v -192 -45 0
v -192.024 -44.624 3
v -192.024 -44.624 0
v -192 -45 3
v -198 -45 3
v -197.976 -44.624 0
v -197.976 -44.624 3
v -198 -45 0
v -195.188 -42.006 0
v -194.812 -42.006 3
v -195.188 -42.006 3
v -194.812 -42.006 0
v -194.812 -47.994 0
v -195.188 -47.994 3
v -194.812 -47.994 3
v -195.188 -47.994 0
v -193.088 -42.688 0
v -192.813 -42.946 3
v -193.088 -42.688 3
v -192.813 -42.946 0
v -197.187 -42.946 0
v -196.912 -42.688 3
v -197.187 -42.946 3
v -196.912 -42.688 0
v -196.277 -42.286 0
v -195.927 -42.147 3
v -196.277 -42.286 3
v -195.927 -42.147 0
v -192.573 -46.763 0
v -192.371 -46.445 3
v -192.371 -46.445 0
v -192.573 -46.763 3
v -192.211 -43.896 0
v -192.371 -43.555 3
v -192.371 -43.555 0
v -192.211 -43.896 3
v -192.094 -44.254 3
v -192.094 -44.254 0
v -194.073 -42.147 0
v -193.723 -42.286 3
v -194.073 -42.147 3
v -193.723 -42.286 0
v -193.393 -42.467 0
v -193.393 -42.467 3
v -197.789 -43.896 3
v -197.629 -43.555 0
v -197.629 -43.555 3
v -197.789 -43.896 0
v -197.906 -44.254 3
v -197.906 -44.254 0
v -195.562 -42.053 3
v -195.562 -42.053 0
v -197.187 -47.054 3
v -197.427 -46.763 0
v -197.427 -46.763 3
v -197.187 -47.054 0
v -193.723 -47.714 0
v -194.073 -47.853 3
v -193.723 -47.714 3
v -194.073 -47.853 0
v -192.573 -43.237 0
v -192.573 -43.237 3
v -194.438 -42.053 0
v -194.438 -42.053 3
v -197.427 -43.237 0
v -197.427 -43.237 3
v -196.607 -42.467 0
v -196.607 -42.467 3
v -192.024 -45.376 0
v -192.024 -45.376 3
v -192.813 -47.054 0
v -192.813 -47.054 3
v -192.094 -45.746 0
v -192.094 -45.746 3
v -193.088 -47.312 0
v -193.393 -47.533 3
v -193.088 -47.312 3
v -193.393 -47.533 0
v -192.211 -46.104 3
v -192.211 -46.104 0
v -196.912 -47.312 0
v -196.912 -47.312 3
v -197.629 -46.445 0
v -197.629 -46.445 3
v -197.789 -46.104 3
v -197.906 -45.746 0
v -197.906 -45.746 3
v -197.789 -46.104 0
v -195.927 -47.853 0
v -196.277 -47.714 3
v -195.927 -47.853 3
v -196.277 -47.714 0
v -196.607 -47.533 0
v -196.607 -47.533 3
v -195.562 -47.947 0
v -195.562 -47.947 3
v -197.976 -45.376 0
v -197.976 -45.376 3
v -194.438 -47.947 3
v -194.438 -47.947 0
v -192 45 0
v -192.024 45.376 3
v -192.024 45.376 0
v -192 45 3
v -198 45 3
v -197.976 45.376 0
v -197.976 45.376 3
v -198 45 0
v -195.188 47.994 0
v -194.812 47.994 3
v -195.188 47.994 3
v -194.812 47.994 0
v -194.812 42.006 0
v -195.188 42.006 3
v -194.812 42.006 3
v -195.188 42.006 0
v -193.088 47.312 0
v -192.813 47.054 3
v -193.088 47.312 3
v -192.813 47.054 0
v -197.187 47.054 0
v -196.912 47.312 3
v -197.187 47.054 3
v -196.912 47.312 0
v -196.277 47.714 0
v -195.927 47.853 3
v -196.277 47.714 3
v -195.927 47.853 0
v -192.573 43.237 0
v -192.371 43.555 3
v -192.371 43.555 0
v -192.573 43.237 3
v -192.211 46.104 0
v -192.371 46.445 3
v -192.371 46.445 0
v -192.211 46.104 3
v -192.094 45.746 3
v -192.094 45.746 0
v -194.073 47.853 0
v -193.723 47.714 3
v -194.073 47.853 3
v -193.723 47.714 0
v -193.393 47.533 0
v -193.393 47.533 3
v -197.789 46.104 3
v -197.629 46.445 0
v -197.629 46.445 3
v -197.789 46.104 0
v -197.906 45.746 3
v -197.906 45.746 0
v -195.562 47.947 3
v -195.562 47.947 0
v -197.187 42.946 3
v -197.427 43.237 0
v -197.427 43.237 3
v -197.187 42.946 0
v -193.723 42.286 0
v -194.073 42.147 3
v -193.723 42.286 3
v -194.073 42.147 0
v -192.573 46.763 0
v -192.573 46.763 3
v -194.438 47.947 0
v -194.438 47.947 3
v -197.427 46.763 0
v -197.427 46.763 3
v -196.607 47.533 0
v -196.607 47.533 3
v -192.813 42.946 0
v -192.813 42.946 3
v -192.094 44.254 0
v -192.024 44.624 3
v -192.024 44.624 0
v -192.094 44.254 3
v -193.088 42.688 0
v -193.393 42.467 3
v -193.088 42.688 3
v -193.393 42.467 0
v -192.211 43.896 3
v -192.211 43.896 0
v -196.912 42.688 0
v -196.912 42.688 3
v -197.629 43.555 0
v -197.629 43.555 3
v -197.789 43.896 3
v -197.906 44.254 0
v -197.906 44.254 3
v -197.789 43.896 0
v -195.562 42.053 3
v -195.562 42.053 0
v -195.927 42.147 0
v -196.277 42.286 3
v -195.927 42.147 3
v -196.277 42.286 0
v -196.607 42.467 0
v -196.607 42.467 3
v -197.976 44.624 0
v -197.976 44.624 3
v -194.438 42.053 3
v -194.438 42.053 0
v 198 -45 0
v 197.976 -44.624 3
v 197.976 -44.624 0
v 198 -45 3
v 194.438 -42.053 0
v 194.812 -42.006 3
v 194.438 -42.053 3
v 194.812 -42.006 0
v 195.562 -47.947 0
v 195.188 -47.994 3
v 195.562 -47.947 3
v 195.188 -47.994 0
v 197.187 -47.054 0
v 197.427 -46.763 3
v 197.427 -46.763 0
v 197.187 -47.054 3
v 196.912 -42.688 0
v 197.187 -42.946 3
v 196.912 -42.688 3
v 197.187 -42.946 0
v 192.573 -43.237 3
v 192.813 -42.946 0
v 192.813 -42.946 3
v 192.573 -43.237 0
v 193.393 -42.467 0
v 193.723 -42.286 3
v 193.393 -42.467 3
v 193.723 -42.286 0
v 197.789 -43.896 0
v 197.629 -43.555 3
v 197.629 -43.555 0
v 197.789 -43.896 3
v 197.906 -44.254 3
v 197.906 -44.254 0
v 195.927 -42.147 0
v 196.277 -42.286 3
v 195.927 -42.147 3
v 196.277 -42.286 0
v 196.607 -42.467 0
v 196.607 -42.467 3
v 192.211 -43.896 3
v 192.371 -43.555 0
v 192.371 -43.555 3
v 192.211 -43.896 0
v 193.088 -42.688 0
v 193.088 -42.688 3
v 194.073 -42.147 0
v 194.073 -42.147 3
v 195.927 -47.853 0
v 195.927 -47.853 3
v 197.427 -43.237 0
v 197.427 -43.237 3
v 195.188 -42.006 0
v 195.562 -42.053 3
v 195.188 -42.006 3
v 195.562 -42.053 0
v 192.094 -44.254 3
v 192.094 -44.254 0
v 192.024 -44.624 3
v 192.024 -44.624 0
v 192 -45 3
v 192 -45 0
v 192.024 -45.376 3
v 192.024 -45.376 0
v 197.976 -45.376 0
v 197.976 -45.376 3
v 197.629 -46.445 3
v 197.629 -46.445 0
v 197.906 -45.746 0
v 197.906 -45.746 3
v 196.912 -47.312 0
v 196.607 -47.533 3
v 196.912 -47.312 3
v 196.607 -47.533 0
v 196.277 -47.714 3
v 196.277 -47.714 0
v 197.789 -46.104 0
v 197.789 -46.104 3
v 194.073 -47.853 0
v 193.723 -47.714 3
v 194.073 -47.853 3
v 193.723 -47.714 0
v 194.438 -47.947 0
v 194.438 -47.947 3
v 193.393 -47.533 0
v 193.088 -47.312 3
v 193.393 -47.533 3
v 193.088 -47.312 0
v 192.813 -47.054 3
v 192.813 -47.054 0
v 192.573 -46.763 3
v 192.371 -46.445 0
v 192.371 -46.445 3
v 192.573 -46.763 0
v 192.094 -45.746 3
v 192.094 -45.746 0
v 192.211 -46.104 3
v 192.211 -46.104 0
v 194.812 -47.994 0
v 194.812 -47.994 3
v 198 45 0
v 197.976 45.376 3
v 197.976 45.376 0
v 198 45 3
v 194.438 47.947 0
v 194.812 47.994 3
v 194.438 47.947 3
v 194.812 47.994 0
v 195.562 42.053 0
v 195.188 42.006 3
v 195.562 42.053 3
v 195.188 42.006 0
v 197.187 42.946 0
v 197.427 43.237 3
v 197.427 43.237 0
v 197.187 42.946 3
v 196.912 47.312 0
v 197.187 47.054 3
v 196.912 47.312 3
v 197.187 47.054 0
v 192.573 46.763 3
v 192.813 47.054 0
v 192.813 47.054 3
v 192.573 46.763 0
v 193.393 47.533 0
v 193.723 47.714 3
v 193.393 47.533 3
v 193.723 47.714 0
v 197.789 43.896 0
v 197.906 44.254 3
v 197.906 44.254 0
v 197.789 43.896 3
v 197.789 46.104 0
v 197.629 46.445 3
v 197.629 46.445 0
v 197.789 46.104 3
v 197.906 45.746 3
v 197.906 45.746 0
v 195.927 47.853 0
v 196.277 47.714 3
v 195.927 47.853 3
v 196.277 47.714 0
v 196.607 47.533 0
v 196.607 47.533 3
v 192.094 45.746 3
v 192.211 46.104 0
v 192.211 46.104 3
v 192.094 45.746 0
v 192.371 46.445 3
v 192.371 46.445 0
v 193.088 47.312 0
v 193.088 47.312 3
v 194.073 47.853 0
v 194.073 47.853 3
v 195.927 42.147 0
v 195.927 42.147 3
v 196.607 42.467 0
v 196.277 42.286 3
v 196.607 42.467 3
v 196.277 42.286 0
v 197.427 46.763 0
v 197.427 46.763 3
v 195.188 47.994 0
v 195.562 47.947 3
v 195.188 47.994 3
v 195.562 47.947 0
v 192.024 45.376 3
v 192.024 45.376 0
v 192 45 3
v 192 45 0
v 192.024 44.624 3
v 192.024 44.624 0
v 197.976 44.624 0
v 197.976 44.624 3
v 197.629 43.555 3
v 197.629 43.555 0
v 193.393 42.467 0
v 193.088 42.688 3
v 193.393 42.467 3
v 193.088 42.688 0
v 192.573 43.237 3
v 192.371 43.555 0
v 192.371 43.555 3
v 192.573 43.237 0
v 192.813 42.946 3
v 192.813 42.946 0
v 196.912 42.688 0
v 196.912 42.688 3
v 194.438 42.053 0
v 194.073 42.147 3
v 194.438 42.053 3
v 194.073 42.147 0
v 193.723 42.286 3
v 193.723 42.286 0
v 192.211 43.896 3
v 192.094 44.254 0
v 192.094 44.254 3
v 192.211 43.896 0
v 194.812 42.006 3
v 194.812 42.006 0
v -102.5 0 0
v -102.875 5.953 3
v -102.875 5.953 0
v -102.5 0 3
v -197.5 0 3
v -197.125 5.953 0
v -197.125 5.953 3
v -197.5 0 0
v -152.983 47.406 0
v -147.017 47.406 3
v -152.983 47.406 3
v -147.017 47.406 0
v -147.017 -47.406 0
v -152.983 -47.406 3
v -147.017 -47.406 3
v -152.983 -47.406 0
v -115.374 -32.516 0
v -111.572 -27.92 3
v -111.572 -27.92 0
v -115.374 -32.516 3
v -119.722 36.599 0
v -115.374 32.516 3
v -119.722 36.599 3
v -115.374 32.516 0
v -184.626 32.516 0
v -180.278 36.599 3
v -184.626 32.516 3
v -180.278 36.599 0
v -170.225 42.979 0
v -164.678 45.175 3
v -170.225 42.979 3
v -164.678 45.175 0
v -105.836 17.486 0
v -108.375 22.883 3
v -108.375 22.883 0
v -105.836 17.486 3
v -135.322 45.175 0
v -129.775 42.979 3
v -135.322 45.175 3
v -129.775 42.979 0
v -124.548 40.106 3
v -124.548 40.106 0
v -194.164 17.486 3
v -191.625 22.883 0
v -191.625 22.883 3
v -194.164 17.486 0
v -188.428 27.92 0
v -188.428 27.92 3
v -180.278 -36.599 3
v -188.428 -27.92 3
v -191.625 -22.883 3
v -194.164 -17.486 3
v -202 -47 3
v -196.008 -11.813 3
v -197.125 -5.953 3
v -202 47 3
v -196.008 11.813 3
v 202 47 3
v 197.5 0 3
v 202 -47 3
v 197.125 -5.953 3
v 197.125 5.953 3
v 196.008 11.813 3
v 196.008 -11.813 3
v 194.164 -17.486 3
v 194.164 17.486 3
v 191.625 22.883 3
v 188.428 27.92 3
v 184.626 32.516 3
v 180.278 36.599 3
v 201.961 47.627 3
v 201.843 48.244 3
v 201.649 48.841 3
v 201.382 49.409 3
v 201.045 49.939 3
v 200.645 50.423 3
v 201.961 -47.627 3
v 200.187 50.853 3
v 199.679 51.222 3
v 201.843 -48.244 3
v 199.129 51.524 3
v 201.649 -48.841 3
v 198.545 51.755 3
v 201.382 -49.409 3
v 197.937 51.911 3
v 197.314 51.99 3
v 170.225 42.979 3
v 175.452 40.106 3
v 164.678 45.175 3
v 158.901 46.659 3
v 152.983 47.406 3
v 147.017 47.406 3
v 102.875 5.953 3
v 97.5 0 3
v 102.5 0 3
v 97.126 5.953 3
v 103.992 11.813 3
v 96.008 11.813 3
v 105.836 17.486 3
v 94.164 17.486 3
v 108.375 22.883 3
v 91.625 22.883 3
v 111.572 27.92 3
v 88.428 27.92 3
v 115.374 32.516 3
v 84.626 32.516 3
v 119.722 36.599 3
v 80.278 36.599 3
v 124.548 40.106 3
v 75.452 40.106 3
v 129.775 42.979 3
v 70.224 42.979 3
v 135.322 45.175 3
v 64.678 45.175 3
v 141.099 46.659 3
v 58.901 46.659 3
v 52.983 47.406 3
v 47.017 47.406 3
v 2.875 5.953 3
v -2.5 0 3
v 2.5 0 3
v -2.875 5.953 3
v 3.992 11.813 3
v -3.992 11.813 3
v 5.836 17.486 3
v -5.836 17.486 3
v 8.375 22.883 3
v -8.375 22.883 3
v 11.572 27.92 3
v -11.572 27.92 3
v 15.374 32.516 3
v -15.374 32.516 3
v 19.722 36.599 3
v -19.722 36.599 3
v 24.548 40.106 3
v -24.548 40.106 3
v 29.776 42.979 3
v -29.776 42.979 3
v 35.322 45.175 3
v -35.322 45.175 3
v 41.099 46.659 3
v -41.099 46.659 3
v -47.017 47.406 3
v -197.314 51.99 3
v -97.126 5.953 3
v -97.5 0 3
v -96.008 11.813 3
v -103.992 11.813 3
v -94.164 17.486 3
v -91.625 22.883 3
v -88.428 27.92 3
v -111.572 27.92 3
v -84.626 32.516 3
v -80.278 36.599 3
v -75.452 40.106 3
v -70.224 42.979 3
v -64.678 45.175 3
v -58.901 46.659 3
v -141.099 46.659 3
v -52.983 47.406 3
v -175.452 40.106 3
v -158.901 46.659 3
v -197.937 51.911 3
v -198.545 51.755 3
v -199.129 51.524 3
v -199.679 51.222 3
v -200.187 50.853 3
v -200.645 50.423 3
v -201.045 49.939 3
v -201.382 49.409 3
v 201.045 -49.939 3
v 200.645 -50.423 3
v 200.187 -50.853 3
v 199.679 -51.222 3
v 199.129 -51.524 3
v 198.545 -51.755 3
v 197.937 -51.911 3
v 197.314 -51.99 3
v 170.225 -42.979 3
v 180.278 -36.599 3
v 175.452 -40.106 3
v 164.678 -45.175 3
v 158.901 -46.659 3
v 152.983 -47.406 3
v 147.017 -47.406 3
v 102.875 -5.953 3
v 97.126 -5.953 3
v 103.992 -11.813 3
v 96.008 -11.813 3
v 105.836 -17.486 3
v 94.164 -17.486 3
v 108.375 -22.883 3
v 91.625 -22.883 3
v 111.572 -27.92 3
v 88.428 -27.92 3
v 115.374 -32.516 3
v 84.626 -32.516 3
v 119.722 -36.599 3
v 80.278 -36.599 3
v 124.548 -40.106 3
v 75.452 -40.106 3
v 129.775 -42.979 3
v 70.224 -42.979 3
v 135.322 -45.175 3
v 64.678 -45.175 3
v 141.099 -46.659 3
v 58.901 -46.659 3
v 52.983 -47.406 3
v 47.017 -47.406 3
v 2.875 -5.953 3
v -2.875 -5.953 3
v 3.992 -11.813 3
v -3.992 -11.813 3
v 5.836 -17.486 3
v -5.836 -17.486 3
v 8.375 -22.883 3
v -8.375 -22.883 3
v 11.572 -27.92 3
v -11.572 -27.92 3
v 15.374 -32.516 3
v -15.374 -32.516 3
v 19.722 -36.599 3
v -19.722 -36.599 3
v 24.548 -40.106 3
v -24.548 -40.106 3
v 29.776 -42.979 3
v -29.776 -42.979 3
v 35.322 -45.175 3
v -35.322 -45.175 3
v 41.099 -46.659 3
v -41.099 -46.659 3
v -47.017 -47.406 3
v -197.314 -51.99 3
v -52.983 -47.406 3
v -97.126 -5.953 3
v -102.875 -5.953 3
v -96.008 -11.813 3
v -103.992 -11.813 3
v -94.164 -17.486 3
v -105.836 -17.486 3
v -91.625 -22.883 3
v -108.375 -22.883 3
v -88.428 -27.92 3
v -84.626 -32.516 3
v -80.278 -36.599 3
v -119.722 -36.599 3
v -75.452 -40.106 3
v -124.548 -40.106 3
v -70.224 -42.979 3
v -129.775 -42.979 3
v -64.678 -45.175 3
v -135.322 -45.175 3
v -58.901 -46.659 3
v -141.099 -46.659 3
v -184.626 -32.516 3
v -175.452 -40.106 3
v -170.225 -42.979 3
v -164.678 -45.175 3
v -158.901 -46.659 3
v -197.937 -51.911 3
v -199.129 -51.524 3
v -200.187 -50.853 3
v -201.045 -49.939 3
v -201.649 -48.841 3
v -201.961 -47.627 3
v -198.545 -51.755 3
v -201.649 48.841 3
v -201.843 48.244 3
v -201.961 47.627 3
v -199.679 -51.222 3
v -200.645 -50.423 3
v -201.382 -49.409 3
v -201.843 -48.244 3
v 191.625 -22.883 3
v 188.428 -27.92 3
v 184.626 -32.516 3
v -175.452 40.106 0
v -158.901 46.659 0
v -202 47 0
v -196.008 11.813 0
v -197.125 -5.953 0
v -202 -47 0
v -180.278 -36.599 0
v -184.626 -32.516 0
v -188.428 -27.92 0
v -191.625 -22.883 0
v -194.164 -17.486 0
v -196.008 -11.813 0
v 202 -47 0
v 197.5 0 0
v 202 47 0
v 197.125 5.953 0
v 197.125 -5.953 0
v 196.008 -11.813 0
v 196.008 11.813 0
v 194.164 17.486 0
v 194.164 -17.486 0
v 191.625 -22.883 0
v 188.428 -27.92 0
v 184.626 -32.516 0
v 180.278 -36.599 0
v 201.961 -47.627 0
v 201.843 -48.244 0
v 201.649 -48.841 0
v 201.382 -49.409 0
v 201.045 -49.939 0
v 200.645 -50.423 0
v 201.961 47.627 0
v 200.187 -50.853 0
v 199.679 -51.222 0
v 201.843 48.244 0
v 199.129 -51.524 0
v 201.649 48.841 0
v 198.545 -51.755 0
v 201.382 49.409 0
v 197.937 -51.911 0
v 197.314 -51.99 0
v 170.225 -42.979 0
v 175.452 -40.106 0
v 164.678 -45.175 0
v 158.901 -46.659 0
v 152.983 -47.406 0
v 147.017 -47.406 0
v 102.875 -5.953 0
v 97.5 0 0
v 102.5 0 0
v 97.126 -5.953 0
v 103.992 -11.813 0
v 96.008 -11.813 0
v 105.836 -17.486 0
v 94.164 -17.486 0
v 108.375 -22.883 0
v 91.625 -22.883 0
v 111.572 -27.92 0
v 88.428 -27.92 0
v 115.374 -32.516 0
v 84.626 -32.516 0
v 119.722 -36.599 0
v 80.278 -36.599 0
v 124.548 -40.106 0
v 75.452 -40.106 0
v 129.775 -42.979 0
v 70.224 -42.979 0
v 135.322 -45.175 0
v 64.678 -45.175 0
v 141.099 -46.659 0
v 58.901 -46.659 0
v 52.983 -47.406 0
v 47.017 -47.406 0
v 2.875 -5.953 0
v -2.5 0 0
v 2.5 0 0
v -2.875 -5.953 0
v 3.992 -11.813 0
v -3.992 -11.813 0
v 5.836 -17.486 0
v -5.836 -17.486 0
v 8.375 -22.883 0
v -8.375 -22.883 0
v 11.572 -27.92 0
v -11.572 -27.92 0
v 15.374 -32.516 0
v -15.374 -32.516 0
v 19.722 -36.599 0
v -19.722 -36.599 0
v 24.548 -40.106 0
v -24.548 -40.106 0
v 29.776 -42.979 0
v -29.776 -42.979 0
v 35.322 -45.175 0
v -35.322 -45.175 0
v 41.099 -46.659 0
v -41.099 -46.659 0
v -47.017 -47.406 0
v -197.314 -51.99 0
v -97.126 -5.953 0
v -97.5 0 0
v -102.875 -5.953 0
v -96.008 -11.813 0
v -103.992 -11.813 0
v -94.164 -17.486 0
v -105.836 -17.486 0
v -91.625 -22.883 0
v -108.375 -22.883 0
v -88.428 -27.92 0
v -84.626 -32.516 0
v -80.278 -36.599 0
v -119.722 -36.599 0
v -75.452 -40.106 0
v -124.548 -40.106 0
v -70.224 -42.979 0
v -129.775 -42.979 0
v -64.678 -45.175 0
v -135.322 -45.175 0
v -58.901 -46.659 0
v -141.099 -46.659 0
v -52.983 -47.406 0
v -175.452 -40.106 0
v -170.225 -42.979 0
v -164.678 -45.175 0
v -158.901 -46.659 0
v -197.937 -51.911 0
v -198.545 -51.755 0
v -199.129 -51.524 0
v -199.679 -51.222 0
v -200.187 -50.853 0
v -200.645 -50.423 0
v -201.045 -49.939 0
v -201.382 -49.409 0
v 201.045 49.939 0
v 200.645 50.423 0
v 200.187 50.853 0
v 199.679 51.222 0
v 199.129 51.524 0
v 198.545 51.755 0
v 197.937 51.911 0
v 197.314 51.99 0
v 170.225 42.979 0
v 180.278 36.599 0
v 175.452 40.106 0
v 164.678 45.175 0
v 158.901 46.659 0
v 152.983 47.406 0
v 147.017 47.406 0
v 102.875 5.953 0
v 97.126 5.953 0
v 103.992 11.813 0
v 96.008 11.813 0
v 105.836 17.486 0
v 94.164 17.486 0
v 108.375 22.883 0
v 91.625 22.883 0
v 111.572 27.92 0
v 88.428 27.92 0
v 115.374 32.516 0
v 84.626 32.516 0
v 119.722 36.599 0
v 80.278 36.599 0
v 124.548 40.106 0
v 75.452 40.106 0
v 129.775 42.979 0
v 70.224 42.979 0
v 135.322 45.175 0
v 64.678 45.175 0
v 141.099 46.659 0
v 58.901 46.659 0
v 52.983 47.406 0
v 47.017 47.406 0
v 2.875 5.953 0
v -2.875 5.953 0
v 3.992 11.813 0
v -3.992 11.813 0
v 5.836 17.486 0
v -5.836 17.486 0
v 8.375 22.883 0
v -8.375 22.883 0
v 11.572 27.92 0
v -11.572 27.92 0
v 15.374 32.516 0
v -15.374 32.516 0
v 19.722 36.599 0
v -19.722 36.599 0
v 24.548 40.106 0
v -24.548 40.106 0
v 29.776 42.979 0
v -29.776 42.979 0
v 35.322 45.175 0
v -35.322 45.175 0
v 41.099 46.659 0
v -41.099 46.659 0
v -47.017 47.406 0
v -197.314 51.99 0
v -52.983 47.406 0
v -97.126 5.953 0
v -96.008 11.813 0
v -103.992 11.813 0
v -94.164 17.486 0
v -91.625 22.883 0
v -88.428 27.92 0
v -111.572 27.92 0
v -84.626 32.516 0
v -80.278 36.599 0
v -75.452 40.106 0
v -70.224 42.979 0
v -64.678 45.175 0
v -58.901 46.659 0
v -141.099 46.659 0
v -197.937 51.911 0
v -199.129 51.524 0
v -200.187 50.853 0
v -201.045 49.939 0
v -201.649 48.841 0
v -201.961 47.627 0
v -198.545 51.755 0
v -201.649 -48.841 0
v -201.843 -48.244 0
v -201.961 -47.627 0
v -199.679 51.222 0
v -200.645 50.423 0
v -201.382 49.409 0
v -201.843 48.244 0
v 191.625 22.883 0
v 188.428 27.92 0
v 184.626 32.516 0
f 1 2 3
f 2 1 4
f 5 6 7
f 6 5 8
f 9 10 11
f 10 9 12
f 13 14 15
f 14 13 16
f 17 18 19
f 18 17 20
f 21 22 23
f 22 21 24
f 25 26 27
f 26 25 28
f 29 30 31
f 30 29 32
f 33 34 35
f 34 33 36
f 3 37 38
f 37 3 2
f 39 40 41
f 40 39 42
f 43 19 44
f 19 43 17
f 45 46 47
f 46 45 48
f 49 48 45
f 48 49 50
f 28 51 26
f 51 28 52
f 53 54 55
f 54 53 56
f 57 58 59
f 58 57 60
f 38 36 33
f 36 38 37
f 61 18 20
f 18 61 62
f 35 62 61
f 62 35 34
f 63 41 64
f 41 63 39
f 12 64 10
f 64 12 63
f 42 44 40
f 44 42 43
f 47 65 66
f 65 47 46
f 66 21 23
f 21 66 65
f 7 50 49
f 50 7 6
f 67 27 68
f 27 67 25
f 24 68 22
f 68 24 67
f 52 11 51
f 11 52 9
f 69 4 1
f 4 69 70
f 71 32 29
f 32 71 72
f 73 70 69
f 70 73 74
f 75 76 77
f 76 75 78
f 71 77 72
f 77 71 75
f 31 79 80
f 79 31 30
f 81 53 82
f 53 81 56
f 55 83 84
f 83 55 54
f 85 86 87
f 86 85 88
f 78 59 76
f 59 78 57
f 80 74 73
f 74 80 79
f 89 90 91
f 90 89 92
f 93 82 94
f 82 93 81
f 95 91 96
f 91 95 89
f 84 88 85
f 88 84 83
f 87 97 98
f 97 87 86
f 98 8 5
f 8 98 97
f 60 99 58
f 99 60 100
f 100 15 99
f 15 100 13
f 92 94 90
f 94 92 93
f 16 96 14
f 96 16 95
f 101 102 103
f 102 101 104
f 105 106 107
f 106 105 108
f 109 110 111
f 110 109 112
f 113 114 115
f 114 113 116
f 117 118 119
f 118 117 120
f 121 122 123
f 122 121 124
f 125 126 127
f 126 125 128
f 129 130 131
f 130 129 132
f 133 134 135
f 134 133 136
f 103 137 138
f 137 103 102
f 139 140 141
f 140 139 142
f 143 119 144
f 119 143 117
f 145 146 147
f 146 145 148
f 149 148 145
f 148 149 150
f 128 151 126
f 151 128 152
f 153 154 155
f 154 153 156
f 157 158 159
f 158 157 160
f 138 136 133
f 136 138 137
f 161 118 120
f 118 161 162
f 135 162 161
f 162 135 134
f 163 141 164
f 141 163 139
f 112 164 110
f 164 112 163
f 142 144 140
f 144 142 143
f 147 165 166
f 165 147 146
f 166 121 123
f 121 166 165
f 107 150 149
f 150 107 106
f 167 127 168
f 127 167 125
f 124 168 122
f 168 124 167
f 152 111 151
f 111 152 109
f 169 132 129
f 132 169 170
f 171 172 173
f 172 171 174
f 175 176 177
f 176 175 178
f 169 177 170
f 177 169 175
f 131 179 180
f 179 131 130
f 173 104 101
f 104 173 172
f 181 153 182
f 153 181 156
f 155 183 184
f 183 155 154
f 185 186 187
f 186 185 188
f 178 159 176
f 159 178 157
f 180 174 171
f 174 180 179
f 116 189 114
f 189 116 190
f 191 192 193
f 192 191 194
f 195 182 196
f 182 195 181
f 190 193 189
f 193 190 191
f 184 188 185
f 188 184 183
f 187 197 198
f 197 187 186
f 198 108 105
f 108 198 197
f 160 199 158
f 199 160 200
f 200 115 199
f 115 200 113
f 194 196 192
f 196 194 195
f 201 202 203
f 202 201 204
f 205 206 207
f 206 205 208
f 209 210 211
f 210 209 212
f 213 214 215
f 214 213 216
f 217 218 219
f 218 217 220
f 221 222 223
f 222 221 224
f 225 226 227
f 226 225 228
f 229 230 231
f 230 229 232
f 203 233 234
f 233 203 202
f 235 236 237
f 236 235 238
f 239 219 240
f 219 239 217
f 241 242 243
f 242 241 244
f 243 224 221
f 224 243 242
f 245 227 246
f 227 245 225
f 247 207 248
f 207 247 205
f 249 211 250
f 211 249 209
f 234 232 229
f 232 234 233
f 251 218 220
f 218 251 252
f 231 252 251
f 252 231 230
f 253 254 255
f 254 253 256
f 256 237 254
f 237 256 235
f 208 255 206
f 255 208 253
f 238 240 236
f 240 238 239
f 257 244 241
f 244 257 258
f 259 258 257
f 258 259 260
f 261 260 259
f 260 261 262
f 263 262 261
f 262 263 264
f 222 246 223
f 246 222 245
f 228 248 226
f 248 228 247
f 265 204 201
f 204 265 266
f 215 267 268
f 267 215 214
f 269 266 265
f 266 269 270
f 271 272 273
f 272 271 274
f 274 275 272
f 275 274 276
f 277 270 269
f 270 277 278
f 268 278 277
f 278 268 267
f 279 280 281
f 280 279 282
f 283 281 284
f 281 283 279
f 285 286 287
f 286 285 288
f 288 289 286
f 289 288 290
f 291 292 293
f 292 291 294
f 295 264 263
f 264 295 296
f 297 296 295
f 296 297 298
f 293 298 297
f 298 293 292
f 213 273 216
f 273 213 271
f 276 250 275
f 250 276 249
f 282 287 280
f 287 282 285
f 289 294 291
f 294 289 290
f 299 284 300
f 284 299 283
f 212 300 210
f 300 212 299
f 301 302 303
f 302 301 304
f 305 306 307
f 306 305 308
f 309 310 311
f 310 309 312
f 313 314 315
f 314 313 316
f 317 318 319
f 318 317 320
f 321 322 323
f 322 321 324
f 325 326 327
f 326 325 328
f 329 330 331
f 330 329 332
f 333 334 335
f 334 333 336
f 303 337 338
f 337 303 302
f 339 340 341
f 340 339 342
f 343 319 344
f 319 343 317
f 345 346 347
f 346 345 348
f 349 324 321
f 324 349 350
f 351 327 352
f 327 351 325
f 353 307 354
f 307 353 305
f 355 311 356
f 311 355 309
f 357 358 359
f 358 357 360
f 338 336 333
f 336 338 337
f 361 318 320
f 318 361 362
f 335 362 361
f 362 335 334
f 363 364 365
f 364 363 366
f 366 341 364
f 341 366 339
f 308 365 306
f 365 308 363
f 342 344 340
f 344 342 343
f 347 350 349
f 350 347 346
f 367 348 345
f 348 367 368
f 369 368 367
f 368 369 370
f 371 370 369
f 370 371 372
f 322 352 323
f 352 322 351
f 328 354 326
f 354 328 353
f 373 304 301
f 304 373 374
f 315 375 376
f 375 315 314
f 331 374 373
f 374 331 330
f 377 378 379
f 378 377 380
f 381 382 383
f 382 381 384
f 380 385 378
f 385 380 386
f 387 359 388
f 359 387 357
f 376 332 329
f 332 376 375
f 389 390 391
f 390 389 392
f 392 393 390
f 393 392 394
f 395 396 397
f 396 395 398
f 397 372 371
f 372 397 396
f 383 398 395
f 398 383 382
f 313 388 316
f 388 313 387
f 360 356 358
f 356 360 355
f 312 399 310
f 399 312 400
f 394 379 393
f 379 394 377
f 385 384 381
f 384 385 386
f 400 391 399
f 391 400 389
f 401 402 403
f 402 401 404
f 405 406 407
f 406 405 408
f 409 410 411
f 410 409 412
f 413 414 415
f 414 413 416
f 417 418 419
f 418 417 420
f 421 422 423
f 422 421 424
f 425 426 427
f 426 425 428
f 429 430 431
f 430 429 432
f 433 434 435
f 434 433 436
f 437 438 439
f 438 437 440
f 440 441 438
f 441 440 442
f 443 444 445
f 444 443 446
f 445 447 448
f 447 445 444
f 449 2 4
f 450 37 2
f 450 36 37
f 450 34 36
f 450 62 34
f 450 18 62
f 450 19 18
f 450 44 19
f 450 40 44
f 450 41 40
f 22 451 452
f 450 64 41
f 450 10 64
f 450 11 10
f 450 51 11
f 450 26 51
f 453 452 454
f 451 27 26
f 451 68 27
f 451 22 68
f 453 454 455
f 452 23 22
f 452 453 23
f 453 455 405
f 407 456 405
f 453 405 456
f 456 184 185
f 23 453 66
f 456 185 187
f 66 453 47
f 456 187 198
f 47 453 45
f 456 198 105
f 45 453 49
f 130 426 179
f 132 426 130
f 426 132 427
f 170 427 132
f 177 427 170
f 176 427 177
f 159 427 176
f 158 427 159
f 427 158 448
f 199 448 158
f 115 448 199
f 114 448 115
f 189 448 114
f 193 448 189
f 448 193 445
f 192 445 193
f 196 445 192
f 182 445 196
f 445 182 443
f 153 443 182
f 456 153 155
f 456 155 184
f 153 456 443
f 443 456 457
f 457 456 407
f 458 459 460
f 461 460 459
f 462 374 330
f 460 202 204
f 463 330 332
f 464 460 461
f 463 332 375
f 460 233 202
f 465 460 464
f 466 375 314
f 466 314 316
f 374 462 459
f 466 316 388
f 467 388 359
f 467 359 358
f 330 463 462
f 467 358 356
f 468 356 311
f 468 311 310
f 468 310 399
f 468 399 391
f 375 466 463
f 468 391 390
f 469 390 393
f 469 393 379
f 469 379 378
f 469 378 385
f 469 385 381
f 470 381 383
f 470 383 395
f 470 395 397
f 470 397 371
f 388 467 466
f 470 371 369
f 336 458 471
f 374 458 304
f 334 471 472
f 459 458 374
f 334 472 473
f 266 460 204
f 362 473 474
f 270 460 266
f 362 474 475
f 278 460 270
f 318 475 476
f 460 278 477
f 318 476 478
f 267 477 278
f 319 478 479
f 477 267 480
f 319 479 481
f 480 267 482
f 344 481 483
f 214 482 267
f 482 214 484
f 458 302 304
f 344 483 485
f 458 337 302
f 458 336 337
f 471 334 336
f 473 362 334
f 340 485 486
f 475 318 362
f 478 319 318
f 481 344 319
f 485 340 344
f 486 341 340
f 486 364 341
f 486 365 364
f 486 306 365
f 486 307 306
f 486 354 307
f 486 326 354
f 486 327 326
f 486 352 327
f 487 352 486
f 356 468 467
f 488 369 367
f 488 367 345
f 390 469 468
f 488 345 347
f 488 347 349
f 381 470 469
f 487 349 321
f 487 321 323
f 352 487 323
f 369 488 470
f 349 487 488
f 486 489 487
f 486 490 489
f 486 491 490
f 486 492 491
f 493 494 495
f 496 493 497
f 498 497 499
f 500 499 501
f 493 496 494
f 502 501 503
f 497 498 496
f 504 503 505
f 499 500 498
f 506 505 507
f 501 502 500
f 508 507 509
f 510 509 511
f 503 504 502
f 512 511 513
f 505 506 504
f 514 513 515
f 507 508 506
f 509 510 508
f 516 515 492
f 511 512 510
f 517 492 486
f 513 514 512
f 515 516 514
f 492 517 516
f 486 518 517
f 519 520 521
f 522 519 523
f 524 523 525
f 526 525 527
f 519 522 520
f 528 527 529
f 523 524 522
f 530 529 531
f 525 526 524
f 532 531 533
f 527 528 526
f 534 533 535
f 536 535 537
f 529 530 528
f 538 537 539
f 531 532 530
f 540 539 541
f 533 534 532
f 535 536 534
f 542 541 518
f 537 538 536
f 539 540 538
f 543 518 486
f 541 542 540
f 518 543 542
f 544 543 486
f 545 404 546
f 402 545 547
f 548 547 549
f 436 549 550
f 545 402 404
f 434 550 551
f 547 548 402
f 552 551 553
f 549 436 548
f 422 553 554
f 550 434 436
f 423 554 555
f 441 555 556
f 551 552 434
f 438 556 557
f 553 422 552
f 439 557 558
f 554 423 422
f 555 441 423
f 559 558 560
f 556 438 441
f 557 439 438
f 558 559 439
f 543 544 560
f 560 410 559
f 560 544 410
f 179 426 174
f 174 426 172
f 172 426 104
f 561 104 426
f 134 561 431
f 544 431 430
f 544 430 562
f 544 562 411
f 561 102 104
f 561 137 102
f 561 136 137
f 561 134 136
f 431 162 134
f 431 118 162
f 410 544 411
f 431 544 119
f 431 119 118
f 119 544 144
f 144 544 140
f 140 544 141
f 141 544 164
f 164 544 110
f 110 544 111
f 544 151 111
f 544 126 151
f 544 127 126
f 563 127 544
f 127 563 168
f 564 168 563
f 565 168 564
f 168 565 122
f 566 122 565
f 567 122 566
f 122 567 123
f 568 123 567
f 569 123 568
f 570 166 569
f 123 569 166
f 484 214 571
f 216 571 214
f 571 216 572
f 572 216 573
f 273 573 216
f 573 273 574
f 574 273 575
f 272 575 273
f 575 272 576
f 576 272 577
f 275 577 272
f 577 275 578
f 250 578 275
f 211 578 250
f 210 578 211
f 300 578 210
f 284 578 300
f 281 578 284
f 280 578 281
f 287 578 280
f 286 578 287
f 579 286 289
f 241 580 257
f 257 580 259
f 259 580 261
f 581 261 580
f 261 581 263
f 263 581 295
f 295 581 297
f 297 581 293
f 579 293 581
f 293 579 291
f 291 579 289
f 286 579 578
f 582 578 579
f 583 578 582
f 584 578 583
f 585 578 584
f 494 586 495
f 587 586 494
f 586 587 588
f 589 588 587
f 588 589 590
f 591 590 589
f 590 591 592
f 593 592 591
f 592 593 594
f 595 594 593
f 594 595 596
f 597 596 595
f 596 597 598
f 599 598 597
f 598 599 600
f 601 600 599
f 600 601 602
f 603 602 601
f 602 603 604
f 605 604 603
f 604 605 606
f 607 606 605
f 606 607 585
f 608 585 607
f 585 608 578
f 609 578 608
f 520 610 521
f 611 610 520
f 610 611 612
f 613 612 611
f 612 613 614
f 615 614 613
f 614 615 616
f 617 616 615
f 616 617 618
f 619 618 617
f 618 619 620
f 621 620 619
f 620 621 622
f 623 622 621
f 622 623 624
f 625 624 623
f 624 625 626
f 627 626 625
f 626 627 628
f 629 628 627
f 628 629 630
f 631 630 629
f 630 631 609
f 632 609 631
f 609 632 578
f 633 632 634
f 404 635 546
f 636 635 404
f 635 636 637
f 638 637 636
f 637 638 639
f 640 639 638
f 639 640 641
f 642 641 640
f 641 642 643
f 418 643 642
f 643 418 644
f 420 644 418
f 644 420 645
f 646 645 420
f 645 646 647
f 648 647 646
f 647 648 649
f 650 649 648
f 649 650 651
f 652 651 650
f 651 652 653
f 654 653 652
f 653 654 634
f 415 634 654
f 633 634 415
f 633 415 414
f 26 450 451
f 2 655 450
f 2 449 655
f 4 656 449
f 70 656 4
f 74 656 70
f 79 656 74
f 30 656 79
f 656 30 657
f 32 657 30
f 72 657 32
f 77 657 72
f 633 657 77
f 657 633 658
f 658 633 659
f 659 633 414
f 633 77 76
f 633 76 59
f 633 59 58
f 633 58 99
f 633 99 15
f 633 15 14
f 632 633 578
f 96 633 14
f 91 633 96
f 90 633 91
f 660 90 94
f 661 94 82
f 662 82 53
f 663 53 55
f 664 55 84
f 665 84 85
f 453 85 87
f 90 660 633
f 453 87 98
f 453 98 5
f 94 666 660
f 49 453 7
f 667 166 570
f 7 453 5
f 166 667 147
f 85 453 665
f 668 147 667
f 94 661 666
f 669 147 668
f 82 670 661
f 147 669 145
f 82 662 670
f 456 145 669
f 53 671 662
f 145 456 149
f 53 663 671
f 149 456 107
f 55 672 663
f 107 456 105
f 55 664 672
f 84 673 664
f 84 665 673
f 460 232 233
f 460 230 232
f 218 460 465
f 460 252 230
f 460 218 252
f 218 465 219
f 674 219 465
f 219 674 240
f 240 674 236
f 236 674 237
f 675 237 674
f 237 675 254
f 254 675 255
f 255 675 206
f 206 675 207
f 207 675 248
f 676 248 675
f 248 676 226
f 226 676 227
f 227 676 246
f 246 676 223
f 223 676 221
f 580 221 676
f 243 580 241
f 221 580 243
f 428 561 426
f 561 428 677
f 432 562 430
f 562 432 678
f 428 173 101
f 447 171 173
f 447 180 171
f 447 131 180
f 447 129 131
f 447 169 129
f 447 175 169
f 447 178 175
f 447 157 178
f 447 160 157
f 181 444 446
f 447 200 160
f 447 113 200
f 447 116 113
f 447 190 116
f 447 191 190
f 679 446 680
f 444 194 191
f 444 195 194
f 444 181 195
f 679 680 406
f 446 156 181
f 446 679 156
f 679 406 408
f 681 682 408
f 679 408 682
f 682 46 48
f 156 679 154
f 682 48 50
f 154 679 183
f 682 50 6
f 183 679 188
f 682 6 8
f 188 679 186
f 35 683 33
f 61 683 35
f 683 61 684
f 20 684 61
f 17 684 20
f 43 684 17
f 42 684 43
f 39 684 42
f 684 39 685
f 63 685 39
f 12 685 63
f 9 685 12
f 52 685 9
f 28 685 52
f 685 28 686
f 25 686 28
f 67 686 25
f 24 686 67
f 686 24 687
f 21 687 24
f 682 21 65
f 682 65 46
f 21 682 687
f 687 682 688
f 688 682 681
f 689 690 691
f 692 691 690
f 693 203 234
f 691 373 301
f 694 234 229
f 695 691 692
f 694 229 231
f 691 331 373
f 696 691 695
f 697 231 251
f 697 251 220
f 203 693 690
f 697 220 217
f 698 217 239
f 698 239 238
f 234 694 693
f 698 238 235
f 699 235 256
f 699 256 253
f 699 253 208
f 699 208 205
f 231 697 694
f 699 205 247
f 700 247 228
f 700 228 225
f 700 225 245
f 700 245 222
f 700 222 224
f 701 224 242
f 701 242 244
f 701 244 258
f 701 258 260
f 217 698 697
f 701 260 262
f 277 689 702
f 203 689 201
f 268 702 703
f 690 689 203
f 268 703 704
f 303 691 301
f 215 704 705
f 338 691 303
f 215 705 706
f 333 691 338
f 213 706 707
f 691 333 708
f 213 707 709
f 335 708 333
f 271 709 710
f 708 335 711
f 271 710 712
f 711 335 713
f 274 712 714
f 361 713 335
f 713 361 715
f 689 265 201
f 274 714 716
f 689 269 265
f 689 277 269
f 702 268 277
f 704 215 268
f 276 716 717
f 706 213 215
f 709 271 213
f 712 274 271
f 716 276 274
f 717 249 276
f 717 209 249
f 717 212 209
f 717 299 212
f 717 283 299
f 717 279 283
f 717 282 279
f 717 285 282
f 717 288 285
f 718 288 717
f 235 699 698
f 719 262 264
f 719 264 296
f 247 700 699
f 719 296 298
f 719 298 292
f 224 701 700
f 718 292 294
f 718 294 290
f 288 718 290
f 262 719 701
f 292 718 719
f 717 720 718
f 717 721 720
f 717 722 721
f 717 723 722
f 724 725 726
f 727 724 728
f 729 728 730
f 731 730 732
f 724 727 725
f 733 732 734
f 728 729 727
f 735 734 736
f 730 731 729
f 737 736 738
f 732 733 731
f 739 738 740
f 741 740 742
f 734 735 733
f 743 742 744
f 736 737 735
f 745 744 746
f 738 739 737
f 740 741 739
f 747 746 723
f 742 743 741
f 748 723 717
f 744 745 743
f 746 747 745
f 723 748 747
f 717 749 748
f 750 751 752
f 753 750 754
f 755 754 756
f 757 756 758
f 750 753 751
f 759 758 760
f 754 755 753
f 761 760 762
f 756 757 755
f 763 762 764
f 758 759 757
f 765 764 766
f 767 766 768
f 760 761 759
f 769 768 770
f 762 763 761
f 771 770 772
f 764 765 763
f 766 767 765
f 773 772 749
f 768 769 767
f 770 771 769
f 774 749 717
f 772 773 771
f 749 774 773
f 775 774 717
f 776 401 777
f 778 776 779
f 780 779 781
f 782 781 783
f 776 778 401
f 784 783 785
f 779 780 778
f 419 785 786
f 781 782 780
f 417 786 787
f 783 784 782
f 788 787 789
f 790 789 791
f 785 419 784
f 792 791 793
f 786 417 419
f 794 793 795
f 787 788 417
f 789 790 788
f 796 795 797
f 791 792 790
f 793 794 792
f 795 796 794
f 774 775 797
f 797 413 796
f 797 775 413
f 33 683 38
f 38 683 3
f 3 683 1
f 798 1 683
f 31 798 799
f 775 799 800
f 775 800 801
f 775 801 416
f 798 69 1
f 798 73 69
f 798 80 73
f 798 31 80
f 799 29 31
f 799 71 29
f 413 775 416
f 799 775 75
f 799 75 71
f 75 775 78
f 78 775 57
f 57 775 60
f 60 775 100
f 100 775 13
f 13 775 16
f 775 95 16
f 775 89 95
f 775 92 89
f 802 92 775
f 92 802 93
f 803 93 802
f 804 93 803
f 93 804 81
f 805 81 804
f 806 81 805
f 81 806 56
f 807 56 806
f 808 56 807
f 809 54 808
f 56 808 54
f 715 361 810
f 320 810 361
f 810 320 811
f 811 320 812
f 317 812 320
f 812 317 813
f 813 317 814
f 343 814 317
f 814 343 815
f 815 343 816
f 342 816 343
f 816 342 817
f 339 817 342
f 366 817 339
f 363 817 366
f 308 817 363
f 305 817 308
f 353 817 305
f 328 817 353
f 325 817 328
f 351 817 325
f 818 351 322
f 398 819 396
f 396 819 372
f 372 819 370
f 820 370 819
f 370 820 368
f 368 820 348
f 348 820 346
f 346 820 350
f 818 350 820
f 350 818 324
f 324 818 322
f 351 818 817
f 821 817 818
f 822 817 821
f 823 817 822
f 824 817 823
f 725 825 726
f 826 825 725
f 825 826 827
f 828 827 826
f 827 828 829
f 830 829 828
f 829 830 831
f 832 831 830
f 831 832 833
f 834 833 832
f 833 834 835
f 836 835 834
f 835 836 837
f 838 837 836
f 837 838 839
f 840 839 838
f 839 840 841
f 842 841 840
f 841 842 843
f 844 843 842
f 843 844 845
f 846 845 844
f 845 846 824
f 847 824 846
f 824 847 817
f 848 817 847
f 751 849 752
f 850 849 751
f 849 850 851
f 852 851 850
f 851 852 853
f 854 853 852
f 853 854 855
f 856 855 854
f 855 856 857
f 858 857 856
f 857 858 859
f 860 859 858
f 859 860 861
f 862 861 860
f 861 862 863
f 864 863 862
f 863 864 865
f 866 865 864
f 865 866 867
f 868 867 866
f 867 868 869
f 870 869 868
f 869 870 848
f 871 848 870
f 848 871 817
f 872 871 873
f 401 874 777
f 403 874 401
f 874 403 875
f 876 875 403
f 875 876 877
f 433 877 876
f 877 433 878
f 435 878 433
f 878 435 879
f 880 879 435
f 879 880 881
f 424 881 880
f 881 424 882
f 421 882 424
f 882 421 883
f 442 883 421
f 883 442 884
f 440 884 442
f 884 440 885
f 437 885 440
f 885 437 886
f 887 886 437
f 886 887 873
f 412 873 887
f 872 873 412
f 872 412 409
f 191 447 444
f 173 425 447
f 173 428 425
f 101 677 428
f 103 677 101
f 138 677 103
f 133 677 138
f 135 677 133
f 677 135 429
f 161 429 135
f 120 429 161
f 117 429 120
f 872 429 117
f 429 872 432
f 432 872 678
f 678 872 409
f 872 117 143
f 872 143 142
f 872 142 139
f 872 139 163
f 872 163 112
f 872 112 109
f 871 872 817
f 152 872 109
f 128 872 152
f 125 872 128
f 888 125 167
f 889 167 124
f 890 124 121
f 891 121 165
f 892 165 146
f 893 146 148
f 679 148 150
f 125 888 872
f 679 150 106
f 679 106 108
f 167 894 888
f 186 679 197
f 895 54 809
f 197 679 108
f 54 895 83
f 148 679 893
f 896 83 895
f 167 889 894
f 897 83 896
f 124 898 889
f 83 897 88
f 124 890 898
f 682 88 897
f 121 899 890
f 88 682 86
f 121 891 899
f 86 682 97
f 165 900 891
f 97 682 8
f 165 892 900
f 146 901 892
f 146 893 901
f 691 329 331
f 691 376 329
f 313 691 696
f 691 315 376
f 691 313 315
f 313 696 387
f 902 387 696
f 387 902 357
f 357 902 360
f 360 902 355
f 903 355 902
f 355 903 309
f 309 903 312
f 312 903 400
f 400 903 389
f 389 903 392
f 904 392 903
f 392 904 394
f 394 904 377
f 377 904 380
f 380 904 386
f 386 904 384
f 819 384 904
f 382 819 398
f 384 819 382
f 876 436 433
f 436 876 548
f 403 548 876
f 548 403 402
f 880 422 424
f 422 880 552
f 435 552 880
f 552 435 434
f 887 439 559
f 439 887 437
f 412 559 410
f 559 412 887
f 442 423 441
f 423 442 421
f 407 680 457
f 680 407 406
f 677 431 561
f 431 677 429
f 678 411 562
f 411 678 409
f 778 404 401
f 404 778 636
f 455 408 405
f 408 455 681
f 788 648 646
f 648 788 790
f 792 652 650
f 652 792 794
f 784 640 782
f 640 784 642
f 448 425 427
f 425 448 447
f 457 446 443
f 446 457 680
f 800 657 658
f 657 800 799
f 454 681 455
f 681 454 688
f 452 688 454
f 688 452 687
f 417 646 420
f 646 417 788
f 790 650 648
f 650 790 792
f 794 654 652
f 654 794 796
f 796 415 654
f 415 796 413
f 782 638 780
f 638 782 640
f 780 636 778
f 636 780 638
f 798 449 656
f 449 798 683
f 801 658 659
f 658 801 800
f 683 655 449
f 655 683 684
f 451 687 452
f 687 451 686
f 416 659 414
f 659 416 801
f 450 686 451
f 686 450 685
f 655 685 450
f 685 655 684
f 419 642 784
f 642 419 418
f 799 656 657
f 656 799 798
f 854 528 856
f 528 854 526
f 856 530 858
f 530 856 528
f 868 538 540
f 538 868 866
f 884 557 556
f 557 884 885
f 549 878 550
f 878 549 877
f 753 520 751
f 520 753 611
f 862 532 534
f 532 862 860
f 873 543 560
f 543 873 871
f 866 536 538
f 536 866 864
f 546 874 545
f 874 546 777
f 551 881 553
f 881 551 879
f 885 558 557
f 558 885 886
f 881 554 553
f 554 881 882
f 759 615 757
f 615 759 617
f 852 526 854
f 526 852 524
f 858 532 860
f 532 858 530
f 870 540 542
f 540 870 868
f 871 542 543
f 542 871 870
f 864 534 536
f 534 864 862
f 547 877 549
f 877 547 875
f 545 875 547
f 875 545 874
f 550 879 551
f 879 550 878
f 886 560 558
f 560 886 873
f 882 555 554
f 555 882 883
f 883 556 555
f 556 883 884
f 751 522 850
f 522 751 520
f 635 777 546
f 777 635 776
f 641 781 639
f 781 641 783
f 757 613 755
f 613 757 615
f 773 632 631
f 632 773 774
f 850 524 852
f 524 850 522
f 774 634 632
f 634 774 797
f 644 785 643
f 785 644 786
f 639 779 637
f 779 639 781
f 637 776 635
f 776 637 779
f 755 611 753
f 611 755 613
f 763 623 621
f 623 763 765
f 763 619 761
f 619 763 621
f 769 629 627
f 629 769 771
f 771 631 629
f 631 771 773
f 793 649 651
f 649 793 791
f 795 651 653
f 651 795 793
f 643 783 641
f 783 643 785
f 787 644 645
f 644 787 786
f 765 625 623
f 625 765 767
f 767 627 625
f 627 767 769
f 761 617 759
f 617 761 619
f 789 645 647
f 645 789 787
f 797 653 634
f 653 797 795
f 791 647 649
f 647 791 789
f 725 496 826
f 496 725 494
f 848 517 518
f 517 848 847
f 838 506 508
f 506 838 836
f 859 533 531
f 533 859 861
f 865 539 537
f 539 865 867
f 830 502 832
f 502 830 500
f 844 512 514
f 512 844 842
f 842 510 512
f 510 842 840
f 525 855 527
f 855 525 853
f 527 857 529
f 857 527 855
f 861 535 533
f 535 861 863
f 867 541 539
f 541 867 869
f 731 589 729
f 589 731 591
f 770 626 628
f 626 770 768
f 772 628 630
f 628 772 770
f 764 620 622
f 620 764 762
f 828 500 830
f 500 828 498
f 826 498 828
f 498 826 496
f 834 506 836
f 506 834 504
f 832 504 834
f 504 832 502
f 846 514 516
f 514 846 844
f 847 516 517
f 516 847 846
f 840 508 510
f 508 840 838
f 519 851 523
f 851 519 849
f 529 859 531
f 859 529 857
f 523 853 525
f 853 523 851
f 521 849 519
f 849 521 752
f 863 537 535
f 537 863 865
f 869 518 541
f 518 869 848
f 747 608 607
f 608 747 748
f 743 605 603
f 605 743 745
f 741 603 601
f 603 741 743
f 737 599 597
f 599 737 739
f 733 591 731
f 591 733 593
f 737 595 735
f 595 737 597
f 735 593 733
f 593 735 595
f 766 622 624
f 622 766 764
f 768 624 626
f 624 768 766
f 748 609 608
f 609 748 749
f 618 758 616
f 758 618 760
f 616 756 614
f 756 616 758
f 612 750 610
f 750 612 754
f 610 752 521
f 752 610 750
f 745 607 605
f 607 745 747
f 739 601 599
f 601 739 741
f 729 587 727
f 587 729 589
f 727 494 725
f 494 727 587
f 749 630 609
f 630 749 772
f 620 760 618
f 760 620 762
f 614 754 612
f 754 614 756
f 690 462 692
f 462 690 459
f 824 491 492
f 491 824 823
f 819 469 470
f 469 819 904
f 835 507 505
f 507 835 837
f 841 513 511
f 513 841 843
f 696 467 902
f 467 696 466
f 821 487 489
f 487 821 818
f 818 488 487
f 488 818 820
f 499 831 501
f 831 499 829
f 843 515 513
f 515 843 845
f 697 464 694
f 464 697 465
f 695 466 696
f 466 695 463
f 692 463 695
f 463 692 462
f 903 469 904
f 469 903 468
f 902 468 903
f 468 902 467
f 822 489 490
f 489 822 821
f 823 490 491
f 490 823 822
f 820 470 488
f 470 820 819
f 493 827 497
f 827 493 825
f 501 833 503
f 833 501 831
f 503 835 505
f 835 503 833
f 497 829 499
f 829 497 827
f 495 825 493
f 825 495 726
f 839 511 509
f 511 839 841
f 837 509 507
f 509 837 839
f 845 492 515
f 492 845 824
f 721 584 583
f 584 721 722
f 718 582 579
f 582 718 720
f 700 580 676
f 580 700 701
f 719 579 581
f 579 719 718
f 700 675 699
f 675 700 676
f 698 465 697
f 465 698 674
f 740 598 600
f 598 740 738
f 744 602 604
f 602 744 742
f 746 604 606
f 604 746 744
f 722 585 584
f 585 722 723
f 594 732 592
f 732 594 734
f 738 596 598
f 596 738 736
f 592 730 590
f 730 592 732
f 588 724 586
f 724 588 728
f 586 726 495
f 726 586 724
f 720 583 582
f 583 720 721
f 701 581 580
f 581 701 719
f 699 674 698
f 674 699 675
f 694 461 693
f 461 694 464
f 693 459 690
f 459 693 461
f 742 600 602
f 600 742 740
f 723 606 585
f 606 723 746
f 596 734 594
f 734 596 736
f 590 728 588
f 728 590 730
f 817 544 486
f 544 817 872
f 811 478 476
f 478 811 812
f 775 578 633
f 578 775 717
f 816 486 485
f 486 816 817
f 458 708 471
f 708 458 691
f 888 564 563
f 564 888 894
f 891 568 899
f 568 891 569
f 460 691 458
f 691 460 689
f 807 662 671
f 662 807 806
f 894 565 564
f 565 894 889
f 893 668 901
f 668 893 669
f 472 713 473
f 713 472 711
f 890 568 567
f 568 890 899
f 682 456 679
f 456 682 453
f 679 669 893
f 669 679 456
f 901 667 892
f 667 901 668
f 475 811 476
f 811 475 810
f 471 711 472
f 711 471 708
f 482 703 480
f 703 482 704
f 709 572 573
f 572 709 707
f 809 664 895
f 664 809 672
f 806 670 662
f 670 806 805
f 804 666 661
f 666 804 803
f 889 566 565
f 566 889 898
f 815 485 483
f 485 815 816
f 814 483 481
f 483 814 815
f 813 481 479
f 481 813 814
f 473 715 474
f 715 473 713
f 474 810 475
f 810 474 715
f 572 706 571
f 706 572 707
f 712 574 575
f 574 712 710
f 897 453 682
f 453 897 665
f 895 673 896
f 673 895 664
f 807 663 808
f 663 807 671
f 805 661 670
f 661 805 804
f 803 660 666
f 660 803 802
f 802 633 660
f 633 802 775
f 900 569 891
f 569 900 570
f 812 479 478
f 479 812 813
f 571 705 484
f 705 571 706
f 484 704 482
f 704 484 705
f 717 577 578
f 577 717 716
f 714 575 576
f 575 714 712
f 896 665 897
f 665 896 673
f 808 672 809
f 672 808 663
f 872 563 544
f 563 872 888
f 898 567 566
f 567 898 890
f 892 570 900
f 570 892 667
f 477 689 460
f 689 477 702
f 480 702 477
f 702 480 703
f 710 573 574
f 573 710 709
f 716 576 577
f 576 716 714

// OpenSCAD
$fn = 50;


difference() {
	union() {
		hull() {
			translate(v = [-197.0000000000, 47.0000000000, 0]) {
				cylinder(h = 3, r = 5);
			}
			translate(v = [197.0000000000, 47.0000000000, 0]) {
				cylinder(h = 3, r = 5);
			}
			translate(v = [-197.0000000000, -47.0000000000, 0]) {
				cylinder(h = 3, r = 5);
			}
			translate(v = [197.0000000000, -47.0000000000, 0]) {
				cylinder(h = 3, r = 5);
			}
		}
	}
	union() {
		#translate(v = [-195.0000000000, -45.0000000000, -100.0000000000]) {
			cylinder(h = 200, r = 3.0000000000);
		}
		#translate(v = [-195.0000000000, 45.0000000000, -100.0000000000]) {
			cylinder(h = 200, r = 3.0000000000);
		}
		#translate(v = [195.0000000000, -45.0000000000, -100.0000000000]) {
			cylinder(h = 200, r = 3.0000000000);
		}
		#translate(v = [195.0000000000, 45.0000000000, -100.0000000000]) {
			cylinder(h = 200, r = 3.0000000000);
		}
		#translate(v = [-150.0000000000, 0, 0]) {
			cylinder(h = 3, r = 47.5000000000);
		}
		#translate(v = [-50.0000000000, 0, 0]) {
			cylinder(h = 3, r = 47.5000000000);
		}
		#translate(v = [50.0000000000, 0, 0]) {
			cylinder(h = 3, r = 47.5000000000);
		}
		#translate(v = [150.0000000000, 0, 0]) {
			cylinder(h = 3, r = 47.5000000000);
		}
	}
}
